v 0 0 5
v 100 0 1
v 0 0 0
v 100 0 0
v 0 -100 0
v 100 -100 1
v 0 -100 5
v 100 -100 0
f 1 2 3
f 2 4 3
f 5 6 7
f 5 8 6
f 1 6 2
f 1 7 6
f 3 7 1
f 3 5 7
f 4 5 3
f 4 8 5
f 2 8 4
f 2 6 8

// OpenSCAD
$fa=5; $fs=0.1;

rotate([90,0,0]) linear_extrude(h=50) polygon([ [0,0], [100, 0], [100,1], [0, 5]]);
